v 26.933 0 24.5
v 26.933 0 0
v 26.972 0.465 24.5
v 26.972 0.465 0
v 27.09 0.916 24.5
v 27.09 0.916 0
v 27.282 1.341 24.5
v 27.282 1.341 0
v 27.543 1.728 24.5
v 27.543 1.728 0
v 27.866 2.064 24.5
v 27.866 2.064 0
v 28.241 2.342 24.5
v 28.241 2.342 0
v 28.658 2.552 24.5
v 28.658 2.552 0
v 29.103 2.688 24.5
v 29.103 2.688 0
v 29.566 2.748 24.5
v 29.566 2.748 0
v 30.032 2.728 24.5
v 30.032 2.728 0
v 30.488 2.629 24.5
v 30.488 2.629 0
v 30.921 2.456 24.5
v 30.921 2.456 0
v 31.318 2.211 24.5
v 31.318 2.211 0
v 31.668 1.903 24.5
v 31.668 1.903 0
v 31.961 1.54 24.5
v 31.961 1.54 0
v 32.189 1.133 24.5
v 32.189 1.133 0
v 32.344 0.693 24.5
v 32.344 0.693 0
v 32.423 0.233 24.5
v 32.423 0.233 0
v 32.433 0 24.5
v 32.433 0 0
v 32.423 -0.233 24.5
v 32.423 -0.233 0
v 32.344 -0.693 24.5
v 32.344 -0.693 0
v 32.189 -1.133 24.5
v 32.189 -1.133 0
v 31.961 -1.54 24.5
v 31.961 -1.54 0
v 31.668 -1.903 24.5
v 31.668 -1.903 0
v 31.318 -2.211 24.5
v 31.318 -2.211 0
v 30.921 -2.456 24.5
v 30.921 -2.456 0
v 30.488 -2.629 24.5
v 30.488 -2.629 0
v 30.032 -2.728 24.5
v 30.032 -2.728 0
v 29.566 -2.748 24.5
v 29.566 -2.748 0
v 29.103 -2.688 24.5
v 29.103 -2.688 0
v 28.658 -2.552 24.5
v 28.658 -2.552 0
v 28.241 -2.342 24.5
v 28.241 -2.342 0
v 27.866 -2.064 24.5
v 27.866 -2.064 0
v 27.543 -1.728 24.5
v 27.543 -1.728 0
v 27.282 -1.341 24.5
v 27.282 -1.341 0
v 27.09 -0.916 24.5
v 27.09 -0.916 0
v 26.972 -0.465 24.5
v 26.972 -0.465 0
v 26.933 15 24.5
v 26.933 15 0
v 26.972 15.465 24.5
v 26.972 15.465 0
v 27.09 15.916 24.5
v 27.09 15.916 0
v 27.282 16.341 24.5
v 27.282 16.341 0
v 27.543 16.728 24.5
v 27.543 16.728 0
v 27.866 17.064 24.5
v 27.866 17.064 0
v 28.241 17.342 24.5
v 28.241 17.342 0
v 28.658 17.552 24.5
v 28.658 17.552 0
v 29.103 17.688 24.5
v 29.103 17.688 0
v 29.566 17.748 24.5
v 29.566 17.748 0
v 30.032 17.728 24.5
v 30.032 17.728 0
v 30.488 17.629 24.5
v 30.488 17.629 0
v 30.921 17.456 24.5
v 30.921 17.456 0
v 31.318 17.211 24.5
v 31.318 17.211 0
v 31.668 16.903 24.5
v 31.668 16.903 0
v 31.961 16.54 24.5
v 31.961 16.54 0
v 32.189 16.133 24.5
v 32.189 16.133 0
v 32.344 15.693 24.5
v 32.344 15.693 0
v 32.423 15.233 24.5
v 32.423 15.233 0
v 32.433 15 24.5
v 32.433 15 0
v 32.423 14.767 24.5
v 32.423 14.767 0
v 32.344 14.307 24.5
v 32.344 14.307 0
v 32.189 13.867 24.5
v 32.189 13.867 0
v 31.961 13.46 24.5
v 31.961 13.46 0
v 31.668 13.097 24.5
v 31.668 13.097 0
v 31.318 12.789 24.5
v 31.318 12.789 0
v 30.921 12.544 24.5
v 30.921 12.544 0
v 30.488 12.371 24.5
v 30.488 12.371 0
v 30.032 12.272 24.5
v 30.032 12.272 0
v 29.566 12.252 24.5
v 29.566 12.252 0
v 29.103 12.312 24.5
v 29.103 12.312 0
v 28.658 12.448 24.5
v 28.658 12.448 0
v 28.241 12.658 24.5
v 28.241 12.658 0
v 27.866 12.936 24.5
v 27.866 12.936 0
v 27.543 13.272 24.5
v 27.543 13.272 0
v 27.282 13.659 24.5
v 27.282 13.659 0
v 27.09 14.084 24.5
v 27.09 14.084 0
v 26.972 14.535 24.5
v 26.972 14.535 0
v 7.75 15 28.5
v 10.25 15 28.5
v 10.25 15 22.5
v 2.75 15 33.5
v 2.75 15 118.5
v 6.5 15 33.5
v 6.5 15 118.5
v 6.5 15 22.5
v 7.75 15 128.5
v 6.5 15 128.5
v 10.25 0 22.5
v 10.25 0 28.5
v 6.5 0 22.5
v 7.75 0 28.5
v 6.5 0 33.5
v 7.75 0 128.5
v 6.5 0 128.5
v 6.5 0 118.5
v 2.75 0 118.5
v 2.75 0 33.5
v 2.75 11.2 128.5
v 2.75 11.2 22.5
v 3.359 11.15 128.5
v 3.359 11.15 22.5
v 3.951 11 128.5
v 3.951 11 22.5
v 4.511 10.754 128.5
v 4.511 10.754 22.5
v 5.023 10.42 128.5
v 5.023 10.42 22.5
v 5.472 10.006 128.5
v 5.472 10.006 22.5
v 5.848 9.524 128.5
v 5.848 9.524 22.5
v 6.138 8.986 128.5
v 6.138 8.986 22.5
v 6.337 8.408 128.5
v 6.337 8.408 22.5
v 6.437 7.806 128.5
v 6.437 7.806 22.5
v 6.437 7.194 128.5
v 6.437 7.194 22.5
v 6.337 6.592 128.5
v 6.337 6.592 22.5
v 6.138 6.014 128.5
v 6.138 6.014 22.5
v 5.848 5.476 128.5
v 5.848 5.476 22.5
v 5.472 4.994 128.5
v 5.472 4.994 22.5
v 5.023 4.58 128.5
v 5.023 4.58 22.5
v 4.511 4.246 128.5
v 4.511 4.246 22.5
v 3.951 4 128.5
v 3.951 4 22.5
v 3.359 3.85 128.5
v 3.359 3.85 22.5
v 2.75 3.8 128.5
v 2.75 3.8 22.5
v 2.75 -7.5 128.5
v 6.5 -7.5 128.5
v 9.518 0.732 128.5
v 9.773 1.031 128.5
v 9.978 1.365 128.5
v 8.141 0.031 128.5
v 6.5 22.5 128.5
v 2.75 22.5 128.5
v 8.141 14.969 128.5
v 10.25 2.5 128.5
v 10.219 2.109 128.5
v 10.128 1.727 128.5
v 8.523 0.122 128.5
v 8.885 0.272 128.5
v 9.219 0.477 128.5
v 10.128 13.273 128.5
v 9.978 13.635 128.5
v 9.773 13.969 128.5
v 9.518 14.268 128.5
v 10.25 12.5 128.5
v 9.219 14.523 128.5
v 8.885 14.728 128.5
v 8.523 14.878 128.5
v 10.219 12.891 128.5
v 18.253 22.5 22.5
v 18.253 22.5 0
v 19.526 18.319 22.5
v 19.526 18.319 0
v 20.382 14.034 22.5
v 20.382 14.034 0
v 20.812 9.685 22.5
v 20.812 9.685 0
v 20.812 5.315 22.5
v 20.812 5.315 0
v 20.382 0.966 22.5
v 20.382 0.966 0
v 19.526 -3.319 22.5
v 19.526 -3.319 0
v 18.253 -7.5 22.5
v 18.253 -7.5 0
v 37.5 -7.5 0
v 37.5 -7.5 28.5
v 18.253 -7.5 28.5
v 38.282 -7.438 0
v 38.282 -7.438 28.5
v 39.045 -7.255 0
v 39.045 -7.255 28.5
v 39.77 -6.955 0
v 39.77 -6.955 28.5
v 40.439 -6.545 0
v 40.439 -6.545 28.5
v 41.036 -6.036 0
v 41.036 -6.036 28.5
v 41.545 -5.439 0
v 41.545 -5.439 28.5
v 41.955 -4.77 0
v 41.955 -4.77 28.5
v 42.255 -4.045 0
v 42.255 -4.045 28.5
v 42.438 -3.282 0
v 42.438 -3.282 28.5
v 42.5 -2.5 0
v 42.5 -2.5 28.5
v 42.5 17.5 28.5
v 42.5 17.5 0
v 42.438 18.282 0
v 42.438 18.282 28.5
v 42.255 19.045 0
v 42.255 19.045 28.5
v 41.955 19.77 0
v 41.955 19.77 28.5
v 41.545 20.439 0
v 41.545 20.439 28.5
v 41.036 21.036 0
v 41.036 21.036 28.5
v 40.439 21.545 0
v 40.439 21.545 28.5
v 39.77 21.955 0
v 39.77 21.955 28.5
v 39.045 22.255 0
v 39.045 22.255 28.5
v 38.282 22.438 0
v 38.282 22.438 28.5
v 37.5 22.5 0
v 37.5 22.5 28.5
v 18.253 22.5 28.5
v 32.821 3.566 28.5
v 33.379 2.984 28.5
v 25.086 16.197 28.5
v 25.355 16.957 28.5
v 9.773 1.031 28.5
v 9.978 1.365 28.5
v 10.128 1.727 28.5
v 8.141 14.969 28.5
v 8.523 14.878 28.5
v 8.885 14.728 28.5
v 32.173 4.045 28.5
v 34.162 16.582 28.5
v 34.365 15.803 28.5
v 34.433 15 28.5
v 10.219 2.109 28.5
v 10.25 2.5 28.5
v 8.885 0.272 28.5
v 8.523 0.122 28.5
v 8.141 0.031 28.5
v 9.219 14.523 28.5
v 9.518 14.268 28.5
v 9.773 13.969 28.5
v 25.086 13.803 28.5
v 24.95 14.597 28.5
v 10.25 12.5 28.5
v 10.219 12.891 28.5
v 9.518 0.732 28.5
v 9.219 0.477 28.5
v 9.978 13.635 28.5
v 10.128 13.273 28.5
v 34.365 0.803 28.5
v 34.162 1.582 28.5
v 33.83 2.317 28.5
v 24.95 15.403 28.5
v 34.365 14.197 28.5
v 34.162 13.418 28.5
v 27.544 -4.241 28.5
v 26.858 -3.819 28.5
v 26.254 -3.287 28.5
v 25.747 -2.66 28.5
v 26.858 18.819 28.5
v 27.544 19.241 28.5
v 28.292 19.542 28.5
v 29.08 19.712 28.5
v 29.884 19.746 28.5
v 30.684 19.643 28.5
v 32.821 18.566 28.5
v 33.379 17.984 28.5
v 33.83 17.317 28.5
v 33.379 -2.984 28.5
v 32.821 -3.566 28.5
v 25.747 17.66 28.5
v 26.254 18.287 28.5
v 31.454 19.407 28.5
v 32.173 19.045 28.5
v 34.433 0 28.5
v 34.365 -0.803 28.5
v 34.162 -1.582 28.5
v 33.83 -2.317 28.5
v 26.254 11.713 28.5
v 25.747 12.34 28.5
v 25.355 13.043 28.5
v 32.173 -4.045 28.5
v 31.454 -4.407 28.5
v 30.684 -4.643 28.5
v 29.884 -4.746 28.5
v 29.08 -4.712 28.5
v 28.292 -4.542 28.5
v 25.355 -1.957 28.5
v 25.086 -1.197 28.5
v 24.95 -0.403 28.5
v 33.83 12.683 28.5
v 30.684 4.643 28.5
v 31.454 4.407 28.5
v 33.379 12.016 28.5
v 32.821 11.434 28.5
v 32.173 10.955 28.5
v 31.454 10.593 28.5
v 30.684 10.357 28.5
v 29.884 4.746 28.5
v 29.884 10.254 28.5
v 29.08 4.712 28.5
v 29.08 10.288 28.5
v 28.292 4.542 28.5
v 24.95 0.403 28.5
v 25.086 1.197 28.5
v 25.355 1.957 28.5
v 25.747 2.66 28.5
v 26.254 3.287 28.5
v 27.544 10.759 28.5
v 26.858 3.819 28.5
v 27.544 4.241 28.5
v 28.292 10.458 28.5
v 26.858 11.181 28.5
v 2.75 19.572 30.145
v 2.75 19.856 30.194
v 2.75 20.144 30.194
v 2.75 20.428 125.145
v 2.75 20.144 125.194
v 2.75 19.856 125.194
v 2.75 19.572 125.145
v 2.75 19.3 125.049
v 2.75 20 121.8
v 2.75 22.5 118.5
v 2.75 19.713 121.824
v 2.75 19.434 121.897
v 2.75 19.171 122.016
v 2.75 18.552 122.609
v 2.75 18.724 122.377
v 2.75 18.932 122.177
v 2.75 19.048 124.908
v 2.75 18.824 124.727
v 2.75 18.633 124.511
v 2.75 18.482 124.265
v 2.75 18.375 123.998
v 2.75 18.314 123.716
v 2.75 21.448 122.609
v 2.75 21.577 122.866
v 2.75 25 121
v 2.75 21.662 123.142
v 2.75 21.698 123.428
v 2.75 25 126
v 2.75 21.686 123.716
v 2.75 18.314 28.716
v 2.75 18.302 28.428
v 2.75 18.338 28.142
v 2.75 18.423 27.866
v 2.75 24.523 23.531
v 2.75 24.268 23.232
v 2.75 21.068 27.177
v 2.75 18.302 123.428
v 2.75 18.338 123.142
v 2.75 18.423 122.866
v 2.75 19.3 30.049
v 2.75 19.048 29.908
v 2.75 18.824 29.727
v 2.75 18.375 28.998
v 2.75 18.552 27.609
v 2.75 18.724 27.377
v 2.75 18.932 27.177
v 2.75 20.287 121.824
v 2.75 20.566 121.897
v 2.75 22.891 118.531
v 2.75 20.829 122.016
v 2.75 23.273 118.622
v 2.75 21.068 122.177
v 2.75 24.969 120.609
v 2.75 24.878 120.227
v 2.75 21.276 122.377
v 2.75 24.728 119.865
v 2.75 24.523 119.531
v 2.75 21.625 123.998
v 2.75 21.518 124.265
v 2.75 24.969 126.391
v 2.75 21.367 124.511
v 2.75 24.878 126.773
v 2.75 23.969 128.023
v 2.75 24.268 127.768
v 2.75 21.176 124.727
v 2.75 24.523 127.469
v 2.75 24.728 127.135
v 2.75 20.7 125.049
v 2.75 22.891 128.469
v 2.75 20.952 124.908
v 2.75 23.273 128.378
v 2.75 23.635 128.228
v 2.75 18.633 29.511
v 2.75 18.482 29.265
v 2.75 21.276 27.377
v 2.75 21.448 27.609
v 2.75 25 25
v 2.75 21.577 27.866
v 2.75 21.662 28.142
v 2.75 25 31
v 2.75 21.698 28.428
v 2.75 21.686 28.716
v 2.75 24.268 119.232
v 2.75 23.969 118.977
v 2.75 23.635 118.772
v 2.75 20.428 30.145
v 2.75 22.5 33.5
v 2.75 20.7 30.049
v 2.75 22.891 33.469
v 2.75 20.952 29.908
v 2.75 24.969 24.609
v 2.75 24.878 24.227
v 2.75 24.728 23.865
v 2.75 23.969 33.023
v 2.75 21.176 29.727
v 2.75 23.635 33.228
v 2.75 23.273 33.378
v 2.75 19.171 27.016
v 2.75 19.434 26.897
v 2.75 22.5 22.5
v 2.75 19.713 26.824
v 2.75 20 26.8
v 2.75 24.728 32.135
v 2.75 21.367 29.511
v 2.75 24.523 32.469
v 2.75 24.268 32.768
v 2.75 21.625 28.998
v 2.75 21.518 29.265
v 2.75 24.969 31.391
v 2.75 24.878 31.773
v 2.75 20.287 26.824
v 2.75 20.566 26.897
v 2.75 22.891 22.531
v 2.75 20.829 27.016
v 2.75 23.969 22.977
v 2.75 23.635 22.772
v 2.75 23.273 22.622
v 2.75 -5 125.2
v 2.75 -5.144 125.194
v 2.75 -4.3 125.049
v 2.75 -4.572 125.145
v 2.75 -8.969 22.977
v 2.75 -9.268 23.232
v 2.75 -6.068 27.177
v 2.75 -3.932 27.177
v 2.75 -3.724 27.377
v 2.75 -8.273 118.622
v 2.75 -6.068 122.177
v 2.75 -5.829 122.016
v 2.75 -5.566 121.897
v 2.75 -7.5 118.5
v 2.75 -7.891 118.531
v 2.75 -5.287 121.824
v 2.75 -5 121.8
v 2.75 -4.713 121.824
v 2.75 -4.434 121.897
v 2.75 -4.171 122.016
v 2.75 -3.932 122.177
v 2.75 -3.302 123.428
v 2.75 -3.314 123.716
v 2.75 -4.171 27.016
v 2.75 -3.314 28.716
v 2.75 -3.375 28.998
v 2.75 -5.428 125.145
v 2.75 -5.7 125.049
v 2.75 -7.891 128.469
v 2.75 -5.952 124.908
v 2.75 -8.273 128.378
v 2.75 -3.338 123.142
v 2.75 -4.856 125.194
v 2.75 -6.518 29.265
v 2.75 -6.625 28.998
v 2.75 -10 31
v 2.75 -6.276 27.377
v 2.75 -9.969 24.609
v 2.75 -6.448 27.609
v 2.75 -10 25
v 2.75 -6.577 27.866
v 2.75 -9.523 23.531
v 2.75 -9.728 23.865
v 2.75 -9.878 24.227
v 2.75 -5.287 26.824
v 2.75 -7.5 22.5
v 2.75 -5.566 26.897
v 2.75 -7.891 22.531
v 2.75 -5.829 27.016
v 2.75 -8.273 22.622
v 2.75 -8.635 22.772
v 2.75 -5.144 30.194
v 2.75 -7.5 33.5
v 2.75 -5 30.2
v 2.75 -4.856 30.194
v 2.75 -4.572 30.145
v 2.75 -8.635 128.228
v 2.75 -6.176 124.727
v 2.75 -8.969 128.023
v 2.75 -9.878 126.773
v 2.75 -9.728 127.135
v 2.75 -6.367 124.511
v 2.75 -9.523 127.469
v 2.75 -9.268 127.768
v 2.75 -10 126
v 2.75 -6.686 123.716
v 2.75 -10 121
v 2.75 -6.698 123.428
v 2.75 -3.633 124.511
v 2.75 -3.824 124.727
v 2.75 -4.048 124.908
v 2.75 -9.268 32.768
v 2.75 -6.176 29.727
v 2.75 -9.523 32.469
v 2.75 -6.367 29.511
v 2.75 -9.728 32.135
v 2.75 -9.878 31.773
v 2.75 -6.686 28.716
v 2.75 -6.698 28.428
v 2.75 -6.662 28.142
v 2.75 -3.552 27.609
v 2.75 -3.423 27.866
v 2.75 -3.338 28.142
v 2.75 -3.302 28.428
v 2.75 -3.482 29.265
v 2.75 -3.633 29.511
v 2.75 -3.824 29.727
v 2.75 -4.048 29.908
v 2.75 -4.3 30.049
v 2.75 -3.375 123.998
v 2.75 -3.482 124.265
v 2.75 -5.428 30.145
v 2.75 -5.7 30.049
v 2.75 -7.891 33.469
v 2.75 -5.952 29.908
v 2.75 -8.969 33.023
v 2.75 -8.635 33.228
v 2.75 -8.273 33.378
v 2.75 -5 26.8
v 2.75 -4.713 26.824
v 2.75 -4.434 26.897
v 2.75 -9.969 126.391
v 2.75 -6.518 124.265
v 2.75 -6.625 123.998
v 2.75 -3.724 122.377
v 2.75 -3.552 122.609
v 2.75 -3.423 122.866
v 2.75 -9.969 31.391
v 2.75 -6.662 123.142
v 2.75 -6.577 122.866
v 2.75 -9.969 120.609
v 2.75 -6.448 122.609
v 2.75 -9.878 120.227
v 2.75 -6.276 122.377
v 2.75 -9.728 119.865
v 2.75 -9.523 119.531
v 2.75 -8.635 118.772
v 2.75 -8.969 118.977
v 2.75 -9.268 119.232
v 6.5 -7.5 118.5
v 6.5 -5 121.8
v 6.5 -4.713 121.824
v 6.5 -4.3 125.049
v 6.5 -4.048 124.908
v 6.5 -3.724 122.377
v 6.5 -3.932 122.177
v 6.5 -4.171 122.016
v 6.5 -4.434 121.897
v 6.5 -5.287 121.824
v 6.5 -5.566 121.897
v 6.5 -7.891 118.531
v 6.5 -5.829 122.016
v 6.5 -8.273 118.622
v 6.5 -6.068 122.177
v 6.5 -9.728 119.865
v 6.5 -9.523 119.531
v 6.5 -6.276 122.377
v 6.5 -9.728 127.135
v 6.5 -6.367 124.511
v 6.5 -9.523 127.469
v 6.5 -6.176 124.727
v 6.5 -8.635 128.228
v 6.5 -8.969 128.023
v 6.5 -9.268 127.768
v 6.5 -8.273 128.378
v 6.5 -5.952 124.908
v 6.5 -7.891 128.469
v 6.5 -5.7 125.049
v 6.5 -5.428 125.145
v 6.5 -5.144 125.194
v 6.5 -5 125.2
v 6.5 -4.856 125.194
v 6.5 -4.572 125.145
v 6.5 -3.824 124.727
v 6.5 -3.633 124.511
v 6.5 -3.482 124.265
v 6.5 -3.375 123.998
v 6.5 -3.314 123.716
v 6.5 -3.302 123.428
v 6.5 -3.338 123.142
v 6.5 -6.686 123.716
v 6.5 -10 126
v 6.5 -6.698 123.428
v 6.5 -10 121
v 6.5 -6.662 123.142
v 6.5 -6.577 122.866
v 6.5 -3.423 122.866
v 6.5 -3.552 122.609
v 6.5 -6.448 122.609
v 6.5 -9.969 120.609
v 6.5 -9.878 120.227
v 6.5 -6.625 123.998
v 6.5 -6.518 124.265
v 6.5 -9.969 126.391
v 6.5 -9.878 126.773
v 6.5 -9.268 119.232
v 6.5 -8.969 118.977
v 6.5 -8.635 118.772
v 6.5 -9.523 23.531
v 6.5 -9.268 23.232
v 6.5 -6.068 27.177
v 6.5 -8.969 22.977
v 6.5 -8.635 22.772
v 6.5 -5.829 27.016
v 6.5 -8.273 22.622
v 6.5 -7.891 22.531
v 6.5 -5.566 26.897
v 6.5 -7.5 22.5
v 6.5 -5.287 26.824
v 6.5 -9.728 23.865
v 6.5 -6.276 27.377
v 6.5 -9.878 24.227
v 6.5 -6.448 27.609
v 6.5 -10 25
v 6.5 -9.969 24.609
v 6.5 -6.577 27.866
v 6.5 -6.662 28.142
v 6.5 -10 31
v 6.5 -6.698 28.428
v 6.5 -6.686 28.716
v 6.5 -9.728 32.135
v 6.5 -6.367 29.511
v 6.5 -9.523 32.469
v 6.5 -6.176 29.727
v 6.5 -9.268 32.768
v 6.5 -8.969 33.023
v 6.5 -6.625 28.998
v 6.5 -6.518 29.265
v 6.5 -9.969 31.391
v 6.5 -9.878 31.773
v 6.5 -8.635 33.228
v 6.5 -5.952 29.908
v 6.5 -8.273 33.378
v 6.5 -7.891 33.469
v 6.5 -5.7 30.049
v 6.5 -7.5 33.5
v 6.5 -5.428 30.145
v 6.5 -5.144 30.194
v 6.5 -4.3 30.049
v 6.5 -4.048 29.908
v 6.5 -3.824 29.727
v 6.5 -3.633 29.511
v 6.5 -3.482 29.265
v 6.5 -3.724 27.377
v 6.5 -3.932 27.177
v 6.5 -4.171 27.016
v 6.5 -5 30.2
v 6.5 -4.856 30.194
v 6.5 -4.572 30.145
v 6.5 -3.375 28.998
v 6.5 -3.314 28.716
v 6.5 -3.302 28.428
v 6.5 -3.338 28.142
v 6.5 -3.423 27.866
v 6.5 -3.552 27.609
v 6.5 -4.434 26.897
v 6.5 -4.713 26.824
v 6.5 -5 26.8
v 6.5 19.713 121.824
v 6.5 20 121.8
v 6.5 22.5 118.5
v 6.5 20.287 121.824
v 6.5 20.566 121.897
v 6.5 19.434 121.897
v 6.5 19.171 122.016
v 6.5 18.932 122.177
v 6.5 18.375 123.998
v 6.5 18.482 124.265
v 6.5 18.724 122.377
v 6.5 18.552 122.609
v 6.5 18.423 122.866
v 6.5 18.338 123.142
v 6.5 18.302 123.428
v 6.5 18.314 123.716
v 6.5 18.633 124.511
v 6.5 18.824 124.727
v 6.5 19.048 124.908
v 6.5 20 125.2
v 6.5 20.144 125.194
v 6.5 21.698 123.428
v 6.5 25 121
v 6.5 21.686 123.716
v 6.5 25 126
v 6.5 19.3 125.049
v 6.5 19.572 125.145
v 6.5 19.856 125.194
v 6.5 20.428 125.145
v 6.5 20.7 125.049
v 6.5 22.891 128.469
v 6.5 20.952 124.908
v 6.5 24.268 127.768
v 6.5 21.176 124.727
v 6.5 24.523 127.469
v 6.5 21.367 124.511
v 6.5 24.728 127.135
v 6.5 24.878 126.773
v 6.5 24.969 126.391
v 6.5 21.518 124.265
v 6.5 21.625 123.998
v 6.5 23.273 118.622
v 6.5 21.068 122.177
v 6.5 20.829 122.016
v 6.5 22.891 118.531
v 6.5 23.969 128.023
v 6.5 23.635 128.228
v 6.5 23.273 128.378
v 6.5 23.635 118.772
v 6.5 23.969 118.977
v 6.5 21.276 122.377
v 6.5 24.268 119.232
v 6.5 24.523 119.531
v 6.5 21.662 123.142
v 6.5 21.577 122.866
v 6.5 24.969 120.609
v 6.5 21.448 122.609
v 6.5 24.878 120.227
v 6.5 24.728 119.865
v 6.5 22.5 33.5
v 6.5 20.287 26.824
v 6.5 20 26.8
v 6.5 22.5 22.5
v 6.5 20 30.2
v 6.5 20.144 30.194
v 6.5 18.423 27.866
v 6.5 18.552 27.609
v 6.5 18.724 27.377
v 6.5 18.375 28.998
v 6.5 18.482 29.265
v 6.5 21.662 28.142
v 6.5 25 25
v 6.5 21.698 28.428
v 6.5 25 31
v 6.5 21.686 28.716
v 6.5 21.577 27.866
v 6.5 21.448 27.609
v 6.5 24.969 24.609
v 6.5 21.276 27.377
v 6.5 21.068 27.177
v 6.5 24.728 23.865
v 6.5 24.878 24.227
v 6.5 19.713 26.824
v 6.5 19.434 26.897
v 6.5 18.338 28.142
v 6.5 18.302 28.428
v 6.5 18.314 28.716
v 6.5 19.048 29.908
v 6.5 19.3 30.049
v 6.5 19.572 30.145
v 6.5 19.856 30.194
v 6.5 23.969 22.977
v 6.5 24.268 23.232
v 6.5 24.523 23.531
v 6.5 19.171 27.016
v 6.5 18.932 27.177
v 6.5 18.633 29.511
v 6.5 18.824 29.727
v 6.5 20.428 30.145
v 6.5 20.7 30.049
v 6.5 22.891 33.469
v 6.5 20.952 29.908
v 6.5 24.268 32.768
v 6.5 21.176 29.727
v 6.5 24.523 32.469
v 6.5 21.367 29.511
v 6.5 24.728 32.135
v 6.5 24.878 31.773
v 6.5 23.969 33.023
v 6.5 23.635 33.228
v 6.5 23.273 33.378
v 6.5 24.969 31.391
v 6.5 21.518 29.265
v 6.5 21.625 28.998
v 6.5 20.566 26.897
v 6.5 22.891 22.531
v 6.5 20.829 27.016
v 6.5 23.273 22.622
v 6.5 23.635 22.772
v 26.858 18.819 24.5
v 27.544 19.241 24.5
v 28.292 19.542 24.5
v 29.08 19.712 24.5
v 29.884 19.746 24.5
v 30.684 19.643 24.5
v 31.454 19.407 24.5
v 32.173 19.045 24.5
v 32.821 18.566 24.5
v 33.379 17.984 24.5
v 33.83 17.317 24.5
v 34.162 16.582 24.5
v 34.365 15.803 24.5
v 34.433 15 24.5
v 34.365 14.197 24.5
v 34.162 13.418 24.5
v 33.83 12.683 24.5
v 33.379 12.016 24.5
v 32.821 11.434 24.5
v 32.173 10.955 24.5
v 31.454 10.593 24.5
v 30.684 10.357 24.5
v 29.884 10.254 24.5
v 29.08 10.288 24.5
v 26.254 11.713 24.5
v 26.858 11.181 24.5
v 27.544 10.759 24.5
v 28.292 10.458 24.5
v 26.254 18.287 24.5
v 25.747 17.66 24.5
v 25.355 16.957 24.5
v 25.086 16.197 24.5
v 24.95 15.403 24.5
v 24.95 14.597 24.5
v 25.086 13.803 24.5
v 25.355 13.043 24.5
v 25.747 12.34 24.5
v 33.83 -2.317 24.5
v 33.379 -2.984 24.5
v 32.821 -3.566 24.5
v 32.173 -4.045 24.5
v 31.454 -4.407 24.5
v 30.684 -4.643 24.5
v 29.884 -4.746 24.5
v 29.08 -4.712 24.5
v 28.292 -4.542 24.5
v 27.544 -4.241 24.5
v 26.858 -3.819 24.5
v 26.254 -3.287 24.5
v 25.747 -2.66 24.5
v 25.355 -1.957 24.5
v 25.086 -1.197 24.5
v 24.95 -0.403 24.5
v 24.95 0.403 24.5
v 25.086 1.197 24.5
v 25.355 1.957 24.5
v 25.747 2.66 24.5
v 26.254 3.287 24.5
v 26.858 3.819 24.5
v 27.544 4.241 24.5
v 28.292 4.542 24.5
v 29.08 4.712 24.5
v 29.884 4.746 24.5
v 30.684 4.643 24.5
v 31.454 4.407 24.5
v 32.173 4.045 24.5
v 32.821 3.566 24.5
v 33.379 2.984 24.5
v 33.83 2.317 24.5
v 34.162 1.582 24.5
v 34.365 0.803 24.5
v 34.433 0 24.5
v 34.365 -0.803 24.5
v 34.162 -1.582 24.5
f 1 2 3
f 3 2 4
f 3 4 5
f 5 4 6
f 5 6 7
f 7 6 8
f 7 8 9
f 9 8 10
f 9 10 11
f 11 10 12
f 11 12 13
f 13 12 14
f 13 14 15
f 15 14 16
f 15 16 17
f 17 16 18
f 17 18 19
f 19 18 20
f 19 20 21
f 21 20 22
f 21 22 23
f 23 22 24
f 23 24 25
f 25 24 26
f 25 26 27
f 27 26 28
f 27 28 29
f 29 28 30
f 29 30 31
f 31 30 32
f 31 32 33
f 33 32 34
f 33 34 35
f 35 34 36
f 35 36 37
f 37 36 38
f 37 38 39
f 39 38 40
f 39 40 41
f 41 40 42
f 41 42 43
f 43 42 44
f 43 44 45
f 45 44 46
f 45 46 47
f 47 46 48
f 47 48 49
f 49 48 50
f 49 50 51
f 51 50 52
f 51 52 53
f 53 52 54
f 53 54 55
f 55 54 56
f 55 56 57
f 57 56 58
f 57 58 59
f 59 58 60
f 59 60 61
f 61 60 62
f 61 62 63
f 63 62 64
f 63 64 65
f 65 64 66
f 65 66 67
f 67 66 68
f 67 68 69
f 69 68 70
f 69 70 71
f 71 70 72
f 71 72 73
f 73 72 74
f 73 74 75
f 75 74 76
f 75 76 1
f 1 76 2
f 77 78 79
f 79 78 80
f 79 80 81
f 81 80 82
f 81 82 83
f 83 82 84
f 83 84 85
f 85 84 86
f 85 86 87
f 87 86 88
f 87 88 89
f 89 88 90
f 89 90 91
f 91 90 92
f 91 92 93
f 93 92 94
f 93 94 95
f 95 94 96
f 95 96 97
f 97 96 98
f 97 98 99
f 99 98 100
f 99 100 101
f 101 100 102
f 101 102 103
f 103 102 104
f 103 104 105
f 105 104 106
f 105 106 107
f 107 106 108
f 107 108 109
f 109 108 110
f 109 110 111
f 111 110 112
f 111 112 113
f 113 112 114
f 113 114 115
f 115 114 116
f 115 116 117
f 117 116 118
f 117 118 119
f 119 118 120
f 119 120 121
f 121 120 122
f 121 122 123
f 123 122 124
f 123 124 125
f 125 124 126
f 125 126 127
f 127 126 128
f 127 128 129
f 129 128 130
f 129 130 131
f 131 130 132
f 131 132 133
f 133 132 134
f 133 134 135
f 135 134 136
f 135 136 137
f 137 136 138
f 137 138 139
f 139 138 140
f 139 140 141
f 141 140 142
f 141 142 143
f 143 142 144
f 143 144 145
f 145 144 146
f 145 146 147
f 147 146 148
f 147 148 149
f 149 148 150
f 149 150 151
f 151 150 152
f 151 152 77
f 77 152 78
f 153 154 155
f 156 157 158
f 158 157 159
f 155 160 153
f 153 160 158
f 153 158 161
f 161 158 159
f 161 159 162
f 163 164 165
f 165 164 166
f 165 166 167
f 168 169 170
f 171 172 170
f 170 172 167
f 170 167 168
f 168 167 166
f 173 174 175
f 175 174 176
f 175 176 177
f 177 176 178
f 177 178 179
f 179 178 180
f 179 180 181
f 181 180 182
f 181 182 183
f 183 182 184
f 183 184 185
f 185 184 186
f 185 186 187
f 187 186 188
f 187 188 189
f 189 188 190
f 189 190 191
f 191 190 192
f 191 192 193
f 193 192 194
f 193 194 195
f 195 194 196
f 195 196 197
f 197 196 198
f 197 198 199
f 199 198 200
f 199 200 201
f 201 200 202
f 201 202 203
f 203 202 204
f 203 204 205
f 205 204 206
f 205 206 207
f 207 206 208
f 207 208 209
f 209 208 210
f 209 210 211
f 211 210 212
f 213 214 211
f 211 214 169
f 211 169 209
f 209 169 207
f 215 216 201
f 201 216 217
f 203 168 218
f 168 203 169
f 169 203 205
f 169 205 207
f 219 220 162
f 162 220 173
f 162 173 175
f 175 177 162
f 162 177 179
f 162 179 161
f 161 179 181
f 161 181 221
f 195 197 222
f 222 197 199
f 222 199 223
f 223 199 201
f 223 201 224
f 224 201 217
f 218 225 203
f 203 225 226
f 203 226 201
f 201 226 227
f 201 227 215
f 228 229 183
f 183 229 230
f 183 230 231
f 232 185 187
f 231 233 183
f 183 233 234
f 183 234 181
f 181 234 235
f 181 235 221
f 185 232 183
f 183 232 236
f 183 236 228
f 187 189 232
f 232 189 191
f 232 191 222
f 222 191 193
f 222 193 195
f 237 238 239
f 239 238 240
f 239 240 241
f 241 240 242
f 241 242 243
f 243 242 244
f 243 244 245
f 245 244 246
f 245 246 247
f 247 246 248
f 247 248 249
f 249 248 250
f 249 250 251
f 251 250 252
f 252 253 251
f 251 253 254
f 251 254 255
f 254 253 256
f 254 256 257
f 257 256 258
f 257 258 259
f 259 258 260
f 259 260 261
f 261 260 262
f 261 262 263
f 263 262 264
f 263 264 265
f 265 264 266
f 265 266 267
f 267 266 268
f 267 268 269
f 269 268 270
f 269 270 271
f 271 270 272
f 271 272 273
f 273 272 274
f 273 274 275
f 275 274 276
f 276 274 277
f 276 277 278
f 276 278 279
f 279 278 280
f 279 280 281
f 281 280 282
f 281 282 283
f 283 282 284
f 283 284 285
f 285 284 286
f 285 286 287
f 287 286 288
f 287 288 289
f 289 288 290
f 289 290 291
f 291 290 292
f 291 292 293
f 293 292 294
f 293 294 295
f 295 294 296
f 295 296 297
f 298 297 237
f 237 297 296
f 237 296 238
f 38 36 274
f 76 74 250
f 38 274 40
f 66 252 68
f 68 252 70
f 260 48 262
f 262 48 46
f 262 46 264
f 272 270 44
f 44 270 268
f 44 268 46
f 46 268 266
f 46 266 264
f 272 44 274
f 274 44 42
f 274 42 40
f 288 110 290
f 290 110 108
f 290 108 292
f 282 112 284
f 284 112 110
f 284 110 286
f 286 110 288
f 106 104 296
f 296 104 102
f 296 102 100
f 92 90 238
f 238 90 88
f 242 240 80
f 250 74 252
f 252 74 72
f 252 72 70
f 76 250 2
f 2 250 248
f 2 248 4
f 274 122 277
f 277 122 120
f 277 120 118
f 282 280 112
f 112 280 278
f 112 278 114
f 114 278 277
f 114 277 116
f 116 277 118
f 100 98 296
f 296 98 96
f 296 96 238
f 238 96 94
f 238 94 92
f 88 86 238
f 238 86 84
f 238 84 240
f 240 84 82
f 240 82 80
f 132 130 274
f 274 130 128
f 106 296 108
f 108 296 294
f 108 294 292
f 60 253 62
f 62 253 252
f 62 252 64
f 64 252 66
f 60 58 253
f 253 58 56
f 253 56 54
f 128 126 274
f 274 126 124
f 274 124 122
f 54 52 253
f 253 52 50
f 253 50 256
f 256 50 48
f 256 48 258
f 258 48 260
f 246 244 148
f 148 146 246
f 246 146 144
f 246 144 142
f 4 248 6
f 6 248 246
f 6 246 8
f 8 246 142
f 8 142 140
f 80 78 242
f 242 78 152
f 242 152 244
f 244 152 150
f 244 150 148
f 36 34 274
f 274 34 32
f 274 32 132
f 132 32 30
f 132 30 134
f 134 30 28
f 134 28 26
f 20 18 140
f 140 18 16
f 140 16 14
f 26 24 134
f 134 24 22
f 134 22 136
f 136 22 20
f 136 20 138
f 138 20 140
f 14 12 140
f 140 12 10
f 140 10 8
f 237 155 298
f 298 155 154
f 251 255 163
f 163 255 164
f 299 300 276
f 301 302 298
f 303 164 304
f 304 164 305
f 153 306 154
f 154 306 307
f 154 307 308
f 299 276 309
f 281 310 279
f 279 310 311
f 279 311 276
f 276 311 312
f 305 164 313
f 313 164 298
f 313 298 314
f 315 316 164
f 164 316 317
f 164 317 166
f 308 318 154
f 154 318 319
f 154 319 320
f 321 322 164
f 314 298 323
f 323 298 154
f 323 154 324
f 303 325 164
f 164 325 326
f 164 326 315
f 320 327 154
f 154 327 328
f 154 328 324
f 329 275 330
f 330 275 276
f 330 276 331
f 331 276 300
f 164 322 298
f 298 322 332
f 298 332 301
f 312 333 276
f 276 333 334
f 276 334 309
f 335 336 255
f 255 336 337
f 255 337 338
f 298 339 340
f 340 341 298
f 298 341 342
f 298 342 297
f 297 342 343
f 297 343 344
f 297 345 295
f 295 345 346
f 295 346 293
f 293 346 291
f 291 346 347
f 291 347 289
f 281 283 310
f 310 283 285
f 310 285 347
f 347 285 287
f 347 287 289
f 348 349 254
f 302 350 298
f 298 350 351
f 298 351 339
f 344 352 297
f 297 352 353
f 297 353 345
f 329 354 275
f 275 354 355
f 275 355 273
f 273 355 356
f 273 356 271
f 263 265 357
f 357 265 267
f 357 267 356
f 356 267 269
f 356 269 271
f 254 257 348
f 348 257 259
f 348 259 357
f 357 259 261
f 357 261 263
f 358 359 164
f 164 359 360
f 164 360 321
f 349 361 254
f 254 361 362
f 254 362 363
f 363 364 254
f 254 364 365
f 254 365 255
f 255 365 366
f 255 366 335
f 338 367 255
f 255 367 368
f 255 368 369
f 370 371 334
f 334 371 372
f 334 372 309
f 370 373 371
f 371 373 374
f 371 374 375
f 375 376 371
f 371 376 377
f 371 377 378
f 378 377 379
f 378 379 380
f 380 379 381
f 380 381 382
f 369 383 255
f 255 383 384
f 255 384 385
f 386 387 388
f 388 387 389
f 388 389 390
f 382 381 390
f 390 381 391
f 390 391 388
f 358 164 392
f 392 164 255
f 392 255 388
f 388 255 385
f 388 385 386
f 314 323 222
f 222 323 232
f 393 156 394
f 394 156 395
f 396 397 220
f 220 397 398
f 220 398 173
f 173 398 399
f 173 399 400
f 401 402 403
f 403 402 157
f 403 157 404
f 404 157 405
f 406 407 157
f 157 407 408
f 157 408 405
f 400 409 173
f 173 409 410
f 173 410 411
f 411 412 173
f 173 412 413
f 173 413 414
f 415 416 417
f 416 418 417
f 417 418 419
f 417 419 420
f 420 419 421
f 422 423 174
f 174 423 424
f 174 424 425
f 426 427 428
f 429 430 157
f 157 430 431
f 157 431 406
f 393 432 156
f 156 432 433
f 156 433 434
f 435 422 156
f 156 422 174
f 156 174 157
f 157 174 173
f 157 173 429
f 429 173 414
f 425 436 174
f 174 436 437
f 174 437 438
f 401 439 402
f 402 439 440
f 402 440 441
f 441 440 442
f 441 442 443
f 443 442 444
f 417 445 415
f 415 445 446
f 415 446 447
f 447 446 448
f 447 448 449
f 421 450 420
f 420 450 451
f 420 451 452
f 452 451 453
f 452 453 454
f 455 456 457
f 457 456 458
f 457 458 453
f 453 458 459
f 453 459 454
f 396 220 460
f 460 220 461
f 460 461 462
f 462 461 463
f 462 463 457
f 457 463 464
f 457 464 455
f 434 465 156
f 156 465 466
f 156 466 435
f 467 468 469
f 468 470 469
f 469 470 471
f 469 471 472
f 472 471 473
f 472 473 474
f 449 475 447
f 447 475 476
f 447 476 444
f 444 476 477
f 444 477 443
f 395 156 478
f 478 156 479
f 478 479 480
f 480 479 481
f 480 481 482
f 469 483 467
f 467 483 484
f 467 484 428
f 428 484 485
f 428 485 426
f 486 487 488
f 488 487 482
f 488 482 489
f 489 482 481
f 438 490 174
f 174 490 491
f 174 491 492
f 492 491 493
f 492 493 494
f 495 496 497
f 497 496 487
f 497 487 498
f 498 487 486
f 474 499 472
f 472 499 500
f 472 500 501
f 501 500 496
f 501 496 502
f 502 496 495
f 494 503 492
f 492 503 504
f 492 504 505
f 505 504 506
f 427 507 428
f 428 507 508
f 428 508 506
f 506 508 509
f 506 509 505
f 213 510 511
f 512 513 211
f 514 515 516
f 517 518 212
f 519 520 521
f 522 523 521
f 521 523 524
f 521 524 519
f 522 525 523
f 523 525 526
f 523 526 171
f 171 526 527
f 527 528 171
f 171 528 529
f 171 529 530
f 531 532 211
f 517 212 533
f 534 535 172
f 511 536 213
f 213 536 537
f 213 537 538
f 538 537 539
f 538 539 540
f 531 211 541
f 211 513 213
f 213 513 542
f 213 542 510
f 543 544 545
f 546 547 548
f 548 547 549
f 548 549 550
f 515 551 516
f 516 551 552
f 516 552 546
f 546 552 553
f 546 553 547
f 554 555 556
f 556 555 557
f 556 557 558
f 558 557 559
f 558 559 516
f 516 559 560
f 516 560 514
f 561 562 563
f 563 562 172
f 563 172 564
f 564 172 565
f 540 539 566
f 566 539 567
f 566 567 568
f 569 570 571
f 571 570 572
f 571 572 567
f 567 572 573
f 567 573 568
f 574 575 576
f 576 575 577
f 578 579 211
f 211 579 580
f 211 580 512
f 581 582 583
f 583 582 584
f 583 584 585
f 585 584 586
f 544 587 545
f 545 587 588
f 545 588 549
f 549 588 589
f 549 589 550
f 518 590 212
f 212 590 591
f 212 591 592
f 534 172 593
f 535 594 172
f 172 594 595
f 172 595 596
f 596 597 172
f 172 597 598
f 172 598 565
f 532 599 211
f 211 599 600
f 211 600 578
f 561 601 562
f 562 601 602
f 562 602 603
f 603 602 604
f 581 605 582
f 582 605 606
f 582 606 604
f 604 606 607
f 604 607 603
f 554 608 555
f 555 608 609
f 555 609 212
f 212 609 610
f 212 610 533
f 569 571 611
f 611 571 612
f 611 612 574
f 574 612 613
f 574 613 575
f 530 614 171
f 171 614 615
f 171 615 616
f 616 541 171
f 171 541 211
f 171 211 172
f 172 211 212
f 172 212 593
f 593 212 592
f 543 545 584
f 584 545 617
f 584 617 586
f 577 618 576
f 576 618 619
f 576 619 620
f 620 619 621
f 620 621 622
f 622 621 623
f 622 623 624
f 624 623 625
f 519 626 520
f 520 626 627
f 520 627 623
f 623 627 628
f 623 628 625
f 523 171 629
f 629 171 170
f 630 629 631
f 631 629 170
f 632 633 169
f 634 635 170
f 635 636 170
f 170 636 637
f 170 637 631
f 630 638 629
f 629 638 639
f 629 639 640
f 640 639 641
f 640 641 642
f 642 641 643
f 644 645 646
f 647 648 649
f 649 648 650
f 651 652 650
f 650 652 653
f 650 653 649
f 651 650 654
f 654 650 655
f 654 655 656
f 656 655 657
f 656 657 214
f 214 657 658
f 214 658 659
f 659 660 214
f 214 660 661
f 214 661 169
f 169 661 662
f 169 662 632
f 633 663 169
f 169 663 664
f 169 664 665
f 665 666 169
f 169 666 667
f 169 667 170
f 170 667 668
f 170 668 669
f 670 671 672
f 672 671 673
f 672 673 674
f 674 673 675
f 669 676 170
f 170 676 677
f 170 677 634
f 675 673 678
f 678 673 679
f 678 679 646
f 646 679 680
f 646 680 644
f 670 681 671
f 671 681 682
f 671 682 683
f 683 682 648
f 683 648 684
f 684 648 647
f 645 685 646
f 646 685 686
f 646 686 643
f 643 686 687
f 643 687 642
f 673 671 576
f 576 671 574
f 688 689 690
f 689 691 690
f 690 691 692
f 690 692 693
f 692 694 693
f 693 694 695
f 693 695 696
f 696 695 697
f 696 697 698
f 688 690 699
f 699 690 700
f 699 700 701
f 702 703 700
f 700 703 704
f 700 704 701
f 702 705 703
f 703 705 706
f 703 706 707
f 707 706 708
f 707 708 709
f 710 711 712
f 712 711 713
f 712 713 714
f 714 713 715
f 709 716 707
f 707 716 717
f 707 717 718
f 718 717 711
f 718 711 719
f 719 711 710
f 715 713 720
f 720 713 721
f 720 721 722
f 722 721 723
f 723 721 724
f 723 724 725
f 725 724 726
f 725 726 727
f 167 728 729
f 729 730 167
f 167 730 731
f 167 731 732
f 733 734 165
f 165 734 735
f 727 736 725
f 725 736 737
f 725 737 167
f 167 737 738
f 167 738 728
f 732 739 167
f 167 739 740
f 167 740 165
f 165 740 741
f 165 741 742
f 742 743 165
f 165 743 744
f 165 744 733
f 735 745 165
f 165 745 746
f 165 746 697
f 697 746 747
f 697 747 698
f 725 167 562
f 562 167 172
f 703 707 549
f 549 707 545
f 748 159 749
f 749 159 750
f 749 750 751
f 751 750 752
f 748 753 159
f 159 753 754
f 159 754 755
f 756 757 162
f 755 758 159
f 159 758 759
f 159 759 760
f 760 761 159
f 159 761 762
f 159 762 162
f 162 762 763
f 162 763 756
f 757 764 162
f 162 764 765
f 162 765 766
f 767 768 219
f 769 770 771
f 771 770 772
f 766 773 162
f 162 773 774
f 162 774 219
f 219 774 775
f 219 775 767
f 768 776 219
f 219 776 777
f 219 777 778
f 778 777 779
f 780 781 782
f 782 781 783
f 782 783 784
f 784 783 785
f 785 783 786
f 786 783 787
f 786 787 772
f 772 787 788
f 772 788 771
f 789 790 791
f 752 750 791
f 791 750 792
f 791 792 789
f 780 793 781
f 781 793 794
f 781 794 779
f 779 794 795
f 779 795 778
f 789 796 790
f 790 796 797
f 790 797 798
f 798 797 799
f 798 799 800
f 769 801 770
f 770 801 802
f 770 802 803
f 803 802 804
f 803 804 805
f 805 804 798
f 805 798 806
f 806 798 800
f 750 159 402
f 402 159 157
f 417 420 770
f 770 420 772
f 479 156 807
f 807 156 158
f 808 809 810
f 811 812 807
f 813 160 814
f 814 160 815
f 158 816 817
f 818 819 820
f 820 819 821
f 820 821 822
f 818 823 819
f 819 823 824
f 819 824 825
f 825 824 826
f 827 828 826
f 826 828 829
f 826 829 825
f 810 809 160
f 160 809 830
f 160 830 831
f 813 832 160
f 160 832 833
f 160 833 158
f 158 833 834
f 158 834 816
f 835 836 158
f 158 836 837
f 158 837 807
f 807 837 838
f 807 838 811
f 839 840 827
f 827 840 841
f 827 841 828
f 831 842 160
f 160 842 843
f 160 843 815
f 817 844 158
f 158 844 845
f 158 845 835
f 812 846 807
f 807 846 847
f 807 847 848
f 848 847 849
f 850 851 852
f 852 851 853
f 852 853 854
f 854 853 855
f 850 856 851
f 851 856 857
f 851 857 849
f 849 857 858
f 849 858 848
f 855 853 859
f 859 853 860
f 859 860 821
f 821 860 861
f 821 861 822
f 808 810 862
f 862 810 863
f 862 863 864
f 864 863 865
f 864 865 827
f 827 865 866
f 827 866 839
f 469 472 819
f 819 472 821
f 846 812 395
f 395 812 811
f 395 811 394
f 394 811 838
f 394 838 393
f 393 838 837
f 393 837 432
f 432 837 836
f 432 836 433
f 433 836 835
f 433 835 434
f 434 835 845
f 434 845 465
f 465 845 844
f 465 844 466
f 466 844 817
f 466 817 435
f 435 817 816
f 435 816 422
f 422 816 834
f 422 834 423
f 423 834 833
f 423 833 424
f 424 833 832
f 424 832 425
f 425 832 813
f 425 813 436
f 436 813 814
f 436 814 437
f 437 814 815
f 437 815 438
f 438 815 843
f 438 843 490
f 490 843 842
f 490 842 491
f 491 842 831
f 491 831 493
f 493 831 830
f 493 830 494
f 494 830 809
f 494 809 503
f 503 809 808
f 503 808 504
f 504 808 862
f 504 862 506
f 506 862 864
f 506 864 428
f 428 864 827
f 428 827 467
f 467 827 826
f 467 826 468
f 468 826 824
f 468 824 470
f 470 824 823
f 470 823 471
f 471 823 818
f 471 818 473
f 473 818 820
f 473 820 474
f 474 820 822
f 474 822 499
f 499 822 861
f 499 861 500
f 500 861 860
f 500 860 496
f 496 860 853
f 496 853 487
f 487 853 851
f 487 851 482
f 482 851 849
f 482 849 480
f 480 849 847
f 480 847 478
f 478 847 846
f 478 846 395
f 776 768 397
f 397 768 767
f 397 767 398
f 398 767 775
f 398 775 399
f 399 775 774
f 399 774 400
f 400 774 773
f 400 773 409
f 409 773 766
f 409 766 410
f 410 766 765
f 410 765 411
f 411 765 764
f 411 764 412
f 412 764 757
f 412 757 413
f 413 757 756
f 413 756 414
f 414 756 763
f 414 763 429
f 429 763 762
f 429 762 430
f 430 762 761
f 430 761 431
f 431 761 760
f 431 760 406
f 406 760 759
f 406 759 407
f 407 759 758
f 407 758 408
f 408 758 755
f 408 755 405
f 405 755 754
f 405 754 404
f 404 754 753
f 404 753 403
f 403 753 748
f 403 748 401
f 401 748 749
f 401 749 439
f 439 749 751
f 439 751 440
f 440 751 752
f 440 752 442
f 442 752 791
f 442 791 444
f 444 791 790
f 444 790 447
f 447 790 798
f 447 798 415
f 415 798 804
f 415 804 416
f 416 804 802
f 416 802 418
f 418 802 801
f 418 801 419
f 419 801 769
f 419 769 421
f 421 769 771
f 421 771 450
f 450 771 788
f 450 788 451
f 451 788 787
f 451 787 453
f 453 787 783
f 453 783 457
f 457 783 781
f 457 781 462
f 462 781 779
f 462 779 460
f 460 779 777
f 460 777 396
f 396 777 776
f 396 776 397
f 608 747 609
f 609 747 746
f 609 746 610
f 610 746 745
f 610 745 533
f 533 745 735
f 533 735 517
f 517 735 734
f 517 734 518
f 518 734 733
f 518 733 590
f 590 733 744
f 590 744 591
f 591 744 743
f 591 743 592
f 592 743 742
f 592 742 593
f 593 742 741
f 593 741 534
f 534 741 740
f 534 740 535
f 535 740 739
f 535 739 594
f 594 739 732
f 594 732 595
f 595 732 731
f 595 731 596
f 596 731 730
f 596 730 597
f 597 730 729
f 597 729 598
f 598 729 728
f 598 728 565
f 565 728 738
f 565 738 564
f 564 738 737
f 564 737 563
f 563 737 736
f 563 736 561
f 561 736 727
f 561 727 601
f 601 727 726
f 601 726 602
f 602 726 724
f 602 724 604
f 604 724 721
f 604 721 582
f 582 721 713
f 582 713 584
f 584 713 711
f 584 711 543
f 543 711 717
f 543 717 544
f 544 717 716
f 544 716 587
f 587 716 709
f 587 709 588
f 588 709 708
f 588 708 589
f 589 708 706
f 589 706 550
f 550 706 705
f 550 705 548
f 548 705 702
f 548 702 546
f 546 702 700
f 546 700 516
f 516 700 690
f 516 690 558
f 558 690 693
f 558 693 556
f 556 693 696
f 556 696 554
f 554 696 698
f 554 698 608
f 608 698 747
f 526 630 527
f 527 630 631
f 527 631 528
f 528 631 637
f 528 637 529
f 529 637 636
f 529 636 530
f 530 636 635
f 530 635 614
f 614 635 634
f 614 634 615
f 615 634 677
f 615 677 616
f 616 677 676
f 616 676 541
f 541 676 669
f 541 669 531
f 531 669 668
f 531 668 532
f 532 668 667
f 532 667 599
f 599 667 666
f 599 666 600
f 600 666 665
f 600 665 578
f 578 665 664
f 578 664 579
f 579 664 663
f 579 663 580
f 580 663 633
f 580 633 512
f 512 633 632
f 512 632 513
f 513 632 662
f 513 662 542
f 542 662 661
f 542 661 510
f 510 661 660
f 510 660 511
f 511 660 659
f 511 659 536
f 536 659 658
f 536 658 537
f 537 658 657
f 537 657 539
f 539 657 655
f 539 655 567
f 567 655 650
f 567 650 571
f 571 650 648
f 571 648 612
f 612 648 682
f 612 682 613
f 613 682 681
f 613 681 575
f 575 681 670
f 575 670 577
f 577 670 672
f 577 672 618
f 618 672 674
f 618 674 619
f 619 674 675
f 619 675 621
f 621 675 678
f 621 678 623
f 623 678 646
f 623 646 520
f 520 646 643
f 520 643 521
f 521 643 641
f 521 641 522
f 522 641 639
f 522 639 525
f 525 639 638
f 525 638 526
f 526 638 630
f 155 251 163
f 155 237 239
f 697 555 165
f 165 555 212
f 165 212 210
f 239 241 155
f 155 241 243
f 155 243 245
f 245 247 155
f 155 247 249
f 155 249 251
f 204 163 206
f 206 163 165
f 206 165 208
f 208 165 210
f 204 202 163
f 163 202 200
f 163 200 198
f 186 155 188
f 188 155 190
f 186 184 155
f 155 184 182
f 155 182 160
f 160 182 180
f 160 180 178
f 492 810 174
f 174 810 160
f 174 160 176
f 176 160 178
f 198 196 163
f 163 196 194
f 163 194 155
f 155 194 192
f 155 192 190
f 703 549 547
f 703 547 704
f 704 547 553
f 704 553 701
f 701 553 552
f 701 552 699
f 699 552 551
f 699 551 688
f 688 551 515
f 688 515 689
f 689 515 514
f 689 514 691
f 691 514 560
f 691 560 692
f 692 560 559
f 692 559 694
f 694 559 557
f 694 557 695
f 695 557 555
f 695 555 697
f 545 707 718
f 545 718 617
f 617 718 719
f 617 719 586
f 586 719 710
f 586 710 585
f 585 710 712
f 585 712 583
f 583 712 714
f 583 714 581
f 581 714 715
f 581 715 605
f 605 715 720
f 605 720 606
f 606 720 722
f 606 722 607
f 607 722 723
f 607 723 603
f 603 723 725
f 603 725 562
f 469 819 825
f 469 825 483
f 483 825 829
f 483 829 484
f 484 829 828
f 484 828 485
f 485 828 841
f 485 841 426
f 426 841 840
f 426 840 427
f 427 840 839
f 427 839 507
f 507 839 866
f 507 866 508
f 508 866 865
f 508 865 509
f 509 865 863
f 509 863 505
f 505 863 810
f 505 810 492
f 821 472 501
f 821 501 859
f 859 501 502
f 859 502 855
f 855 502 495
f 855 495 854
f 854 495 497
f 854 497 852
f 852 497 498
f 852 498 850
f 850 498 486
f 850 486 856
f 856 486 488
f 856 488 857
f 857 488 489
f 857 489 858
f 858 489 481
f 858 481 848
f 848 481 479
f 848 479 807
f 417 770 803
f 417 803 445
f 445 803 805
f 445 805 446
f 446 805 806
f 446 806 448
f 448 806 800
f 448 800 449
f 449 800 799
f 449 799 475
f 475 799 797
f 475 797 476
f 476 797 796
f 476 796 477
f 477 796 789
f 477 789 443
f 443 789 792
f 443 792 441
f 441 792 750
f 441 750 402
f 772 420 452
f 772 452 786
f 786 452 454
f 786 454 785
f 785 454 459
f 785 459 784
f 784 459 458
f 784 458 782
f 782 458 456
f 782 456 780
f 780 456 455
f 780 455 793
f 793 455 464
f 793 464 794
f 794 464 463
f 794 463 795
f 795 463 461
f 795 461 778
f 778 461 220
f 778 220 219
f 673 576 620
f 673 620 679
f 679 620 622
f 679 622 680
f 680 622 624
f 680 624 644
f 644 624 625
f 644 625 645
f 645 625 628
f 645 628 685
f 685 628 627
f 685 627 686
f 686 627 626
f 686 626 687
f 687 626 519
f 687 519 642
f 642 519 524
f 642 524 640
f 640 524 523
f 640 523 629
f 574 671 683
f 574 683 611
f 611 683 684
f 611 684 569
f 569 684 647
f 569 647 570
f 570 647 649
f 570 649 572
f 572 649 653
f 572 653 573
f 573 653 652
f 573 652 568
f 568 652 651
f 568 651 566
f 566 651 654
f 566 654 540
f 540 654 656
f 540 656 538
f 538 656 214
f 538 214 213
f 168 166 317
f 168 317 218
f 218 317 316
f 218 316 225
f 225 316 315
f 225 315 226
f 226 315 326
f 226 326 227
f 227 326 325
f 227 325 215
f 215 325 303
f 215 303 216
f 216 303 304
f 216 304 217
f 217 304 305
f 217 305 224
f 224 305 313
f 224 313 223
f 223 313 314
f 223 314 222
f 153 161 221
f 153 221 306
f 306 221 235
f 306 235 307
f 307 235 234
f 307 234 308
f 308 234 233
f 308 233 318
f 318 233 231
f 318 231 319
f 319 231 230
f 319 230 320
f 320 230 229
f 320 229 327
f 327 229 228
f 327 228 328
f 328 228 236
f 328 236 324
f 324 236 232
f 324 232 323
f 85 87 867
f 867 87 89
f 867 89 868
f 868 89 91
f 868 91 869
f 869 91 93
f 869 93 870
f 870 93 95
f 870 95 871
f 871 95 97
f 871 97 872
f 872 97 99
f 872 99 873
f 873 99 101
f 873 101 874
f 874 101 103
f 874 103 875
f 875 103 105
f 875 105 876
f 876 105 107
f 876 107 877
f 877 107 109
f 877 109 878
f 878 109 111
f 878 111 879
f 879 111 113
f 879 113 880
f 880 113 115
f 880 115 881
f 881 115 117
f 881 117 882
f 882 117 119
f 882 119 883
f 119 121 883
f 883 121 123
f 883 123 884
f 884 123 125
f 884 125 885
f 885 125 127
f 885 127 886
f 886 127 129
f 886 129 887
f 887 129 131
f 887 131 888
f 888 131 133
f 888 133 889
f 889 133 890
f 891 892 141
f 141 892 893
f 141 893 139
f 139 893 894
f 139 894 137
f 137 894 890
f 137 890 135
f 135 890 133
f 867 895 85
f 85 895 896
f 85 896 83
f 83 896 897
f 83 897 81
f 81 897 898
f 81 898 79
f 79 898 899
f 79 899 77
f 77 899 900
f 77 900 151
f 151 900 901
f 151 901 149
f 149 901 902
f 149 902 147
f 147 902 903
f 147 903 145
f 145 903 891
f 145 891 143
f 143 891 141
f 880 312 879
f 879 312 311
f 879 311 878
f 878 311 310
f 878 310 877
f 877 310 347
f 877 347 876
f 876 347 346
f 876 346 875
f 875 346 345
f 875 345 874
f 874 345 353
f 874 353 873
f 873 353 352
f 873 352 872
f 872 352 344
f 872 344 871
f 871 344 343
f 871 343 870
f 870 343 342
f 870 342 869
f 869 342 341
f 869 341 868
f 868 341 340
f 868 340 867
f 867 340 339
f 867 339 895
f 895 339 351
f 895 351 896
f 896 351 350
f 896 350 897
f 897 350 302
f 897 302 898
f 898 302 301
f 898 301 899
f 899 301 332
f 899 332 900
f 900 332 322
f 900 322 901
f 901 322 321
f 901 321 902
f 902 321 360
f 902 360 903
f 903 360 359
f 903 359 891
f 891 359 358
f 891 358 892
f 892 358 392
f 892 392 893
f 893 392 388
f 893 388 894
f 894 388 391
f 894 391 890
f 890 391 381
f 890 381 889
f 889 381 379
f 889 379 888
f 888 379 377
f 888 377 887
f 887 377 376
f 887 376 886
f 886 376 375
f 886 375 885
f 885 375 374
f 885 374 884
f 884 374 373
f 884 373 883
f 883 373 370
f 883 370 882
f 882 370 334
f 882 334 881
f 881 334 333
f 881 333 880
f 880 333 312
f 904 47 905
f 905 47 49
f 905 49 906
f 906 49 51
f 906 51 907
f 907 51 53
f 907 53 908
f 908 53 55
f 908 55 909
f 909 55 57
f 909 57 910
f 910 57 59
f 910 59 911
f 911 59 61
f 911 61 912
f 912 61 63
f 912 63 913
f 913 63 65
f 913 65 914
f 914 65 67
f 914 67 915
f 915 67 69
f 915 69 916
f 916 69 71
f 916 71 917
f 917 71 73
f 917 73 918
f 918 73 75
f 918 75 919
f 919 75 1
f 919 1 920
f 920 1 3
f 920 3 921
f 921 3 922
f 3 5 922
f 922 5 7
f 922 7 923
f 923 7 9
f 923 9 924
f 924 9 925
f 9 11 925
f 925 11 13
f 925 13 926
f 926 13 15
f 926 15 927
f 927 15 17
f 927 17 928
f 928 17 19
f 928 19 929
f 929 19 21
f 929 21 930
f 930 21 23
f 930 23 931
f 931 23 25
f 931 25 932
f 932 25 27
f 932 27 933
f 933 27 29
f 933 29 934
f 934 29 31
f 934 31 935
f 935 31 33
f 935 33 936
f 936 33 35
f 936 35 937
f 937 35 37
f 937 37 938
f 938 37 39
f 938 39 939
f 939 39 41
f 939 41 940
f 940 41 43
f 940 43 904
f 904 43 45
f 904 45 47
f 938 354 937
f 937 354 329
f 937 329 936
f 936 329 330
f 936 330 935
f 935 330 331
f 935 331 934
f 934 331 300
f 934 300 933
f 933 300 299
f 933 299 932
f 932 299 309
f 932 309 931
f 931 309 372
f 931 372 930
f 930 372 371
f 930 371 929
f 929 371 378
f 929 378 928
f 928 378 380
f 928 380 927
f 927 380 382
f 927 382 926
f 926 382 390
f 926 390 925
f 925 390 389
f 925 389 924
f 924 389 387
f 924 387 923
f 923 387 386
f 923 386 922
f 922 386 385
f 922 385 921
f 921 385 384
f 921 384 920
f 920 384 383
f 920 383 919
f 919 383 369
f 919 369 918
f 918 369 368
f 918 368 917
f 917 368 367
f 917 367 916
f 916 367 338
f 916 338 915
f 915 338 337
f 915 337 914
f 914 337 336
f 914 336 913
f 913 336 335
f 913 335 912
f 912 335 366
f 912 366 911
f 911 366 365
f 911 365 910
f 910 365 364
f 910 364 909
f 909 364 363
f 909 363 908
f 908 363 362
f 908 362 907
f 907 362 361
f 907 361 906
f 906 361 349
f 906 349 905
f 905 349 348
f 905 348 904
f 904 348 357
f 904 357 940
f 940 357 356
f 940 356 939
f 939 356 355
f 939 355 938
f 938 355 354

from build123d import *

# Parameters (mm, degrees)
SKETCH2_R               = 2.75
BOSS_EXTRUDE1_DEPTH     = 21.5
SKETCH3_R               = 2.75
BOSS_EXTRUDE2_DEPTH     = 2
SKETCH4_W               = 15
SKETCH4_H               = 15
SKETCH4_R               = 3.7
SKETCH4_R_2             = 2.75
BOSS_EXTRUDE3_DEPTH     = 5
SKETCH5_W               = 15
SKETCH5_H               = 15
SKETCH5_R               = 3.7
BOSS_EXTRUDE4_DEPTH     = 100
CUT_EXTRUDE1_DEPTH      = 138.203316286
CUT_EXTRUDE1_DEPTH_BACK = 138.203316286
SKETCH7_W               = 3.75
SKETCH7_H               = 10
BOSS_EXTRUDE5_DEPTH     = 10
SKETCH8_W               = 3.75
SKETCH8_H               = 10
BOSS_EXTRUDE6_DEPTH     = 10
CUT_EXTRUDE2_DEPTH      = 137.811229437
CUT_EXTRUDE2_DEPTH_BACK = 5
SKETCH9_R               = 1.7
BOSS_EXTRUDE7_START     = 1
BOSS_EXTRUDE7_DEPTH     = 1
FILLET1_R               = 2.5
SKETCH11_R              = 4.75
CUT_EXTRUDE3_DEPTH      = 4


with BuildPart() as part:
    # Sketch2 → Boss-Extrude1 (new body)
    with BuildSketch(Plane.XY):
        with BuildLine():
            ThreePointArc((37.5, -7.5), (41.035533906, -6.035533906), (42.5, -2.5))
            Line((42.5, -2.5), (42.5, 17.5))
            ThreePointArc((42.5, 17.5), (41.035533906, 21.035533906), (37.5, 22.5))
            Line((37.5, 22.5), (18.2530456, 22.5))
            ThreePointArc((18.2530456, 22.5), (20.865716684, 7.5), (18.2530456, -7.5))
            Line((18.2530456, -7.5), (37.5, -7.5))
        make_face()
        with Locations((29.682858342, 0)):
            Circle(SKETCH2_R, mode=Mode.SUBTRACT)
        with Locations((29.682858342, 15)):
            Circle(SKETCH2_R, mode=Mode.SUBTRACT)
    extrude(amount=BOSS_EXTRUDE1_DEPTH)

    # Sketch3 → Boss-Extrude2 (add)
    with BuildSketch(Plane.XY.offset(21.5)):
        with BuildLine():
            Line((18.2530456, -7.5), (37.5, -7.5))
            ThreePointArc((37.5, -7.5), (41.035533906, -6.035533906), (42.5, -2.5))
            Line((42.5, -2.5), (42.5, 17.5))
            ThreePointArc((42.5, 17.5), (41.035533906, 21.035533906), (37.5, 22.5))
            Line((37.5, 22.5), (18.2530456, 22.5))
            ThreePointArc((18.2530456, 22.5), (20.865716684, 7.5), (18.2530456, -7.5))
        make_face()
        with Locations((29.682858342, 0)):
            Circle(SKETCH3_R, mode=Mode.SUBTRACT)
        with Locations((29.682858342, 15)):
            Circle(SKETCH3_R, mode=Mode.SUBTRACT)
    extrude(amount=BOSS_EXTRUDE2_DEPTH)

    # Sketch4 → Boss-Extrude3 (add)
    # profile 1 of 3: a face of its own
    with BuildSketch(Plane.XY.offset(23.5)):
        with BuildLine():
            Line((10.25, 0), (10.25, 15))
            Line((10.25, 15), (18.2530456, 22.5))
            ThreePointArc((18.2530456, 22.5), (20.865716684, 7.5), (18.2530456, -7.5))
            Line((18.2530456, -7.5), (10.25, 0))
        make_face()
    # profile 2 of 3: a face of its own
    with BuildSketch(Plane.XY.offset(23.5)):
        with Locations((2.75, 7.5)):
            Rectangle(SKETCH4_W, SKETCH4_H)
        with Locations((2.75, 7.5)):
            Circle(SKETCH4_R, mode=Mode.SUBTRACT)
    # profile 3 of 3: a face of its own
    with BuildSketch(Plane.XY.offset(23.5)):
        with BuildLine():
            Line((37.5, 22.5), (18.2530456, 22.5))
            ThreePointArc((18.2530456, 22.5), (20.865716684, 7.5), (18.2530456, -7.5))
            Line((18.2530456, -7.5), (37.5, -7.5))
            ThreePointArc((37.5, -7.5), (41.035533906, -6.035533906), (42.5, -2.5))
            Line((42.5, -2.5), (42.5, 17.5))
            ThreePointArc((42.5, 17.5), (41.035533906, 21.035533906), (37.5, 22.5))
        make_face()
        with Locations((29.682858342, 15)):
            Circle(SKETCH4_R_2, mode=Mode.SUBTRACT)
        with Locations((29.682858342, 0)):
            Circle(SKETCH4_R_2, mode=Mode.SUBTRACT)
    extrude(amount=BOSS_EXTRUDE3_DEPTH)

    # Sketch5 → Boss-Extrude4 (add)
    with BuildSketch(Plane.XY.offset(28.5)):
        with Locations((2.75, 7.5)):
            Rectangle(SKETCH5_W, SKETCH5_H)
        with Locations((2.75, 7.5)):
            Circle(SKETCH5_R, mode=Mode.SUBTRACT)
    extrude(amount=BOSS_EXTRUDE4_DEPTH)

    # Sketch6 → Cut-Extrude1 (cut, two sides: drawn at the far end of the back side and taken through both)
    with BuildSketch(Plane.XY.offset(128.5).offset(-CUT_EXTRUDE1_DEPTH_BACK)):
        with BuildLine():
            ThreePointArc((2.75, 3.8), (-0.95, 7.5), (2.75, 11.2))
            Line((2.75, 11.2), (2.75, 15))
            Line((2.75, 15), (-4.75, 15))
            Line((-4.75, 15), (-4.75, 0))
            Line((-4.75, 0), (2.75, 0))
            Line((2.75, 0), (2.75, 3.8))
        make_face()
    extrude(amount=CUT_EXTRUDE1_DEPTH + CUT_EXTRUDE1_DEPTH_BACK, mode=Mode.SUBTRACT)

    # Sketch7 → Boss-Extrude5 (add)
    with BuildSketch(Plane.XZ):
        with Locations((4.625, 123.5)):
            Rectangle(SKETCH7_W, SKETCH7_H)
        with Locations((4.625, 28.5)):
            Rectangle(SKETCH7_W, SKETCH7_H)
    extrude(amount=BOSS_EXTRUDE5_DEPTH)

    # Sketch8 → Boss-Extrude6 (add)
    with BuildSketch(Plane(origin=(0, 15, 0), x_dir=(1, 0, 0), z_dir=(0, 1, 0))):
        with Locations((4.625, -123.5)):
            Rectangle(SKETCH8_W, SKETCH8_H)
        with Locations((4.625, -28.5)):
            Rectangle(SKETCH8_W, SKETCH8_H)
    extrude(amount=BOSS_EXTRUDE6_DEPTH)

    # Sketch9 → Cut-Extrude2 (cut, two sides: drawn at the far end of the back side and taken through both)
    with BuildSketch(Plane.ZY.offset(-2.75).offset(-CUT_EXTRUDE2_DEPTH_BACK)):
        with Locations((123.5, -5)):
            Circle(SKETCH9_R)
        with Locations(Location((123.5, 20, 0), (0, 0, 180))):
            Circle(SKETCH9_R)
        with Locations(Location((28.5, 20, 0), (0, 0, 180))):
            Circle(SKETCH9_R)
        with Locations((28.5, -5)):
            Circle(SKETCH9_R)
    extrude(amount=CUT_EXTRUDE2_DEPTH + CUT_EXTRUDE2_DEPTH_BACK, mode=Mode.SUBTRACT)

    # Sketch10 → Boss-Extrude7 (add)
    with BuildSketch(Plane(origin=(0, 0, 23.5), x_dir=(-1, 0, 0), z_dir=(0, 0, -1)).offset(BOSS_EXTRUDE7_START)):
        with BuildLine():
            Line((-2.75, -10), (-2.75, 3.8))
            ThreePointArc((-2.75, 3.8), (-6.45, 7.5), (-2.75, 11.2))
            Line((-2.75, 11.2), (-2.75, 25))
            Line((-2.75, 25), (-6.5, 25))
            Line((-6.5, 25), (-6.5, 15))
            Line((-6.5, 15), (-10.25, 15))
            Line((-10.25, 15), (-18.2530456, 22.5))
            ThreePointArc((-18.2530456, 22.5), (-20.865716684, 7.5), (-18.2530456, -7.5))
            Line((-18.2530456, -7.5), (-10.25, 0))
            Line((-10.25, 0), (-6.5, 0))
            Line((-6.5, 0), (-6.5, -10))
            Line((-6.5, -10), (-2.75, -10))
        make_face()
    extrude(amount=-BOSS_EXTRUDE7_DEPTH)

    # Fillet1
    fillet1_edges = [part.edges().sort_by_distance(p)[0] for p in [
        (4.625, -10, 22.5),
        (4.625, -10, 33.5),
        (4.625, 25, 22.5),
        (4.625, 25, 33.5),
        (4.625, 25, 118.5),
        (4.625, 25, 128.5),
        (4.625, -10, 118.5),
        (4.625, -10, 128.5),
        (10.25, 0, 78.5),
        (10.25, 15, 78.5),
    ]]
    fillet(fillet1_edges, radius=FILLET1_R)

    # Sketch11 → Cut-Extrude3 (cut)
    with BuildSketch(Plane.XY.offset(28.5)):
        with Locations((29.682858342, 15)):
            Circle(SKETCH11_R)
        with Locations((29.682858342, 0)):
            Circle(SKETCH11_R)
    extrude(amount=-CUT_EXTRUDE3_DEPTH, mode=Mode.SUBTRACT)


solid = part.part
